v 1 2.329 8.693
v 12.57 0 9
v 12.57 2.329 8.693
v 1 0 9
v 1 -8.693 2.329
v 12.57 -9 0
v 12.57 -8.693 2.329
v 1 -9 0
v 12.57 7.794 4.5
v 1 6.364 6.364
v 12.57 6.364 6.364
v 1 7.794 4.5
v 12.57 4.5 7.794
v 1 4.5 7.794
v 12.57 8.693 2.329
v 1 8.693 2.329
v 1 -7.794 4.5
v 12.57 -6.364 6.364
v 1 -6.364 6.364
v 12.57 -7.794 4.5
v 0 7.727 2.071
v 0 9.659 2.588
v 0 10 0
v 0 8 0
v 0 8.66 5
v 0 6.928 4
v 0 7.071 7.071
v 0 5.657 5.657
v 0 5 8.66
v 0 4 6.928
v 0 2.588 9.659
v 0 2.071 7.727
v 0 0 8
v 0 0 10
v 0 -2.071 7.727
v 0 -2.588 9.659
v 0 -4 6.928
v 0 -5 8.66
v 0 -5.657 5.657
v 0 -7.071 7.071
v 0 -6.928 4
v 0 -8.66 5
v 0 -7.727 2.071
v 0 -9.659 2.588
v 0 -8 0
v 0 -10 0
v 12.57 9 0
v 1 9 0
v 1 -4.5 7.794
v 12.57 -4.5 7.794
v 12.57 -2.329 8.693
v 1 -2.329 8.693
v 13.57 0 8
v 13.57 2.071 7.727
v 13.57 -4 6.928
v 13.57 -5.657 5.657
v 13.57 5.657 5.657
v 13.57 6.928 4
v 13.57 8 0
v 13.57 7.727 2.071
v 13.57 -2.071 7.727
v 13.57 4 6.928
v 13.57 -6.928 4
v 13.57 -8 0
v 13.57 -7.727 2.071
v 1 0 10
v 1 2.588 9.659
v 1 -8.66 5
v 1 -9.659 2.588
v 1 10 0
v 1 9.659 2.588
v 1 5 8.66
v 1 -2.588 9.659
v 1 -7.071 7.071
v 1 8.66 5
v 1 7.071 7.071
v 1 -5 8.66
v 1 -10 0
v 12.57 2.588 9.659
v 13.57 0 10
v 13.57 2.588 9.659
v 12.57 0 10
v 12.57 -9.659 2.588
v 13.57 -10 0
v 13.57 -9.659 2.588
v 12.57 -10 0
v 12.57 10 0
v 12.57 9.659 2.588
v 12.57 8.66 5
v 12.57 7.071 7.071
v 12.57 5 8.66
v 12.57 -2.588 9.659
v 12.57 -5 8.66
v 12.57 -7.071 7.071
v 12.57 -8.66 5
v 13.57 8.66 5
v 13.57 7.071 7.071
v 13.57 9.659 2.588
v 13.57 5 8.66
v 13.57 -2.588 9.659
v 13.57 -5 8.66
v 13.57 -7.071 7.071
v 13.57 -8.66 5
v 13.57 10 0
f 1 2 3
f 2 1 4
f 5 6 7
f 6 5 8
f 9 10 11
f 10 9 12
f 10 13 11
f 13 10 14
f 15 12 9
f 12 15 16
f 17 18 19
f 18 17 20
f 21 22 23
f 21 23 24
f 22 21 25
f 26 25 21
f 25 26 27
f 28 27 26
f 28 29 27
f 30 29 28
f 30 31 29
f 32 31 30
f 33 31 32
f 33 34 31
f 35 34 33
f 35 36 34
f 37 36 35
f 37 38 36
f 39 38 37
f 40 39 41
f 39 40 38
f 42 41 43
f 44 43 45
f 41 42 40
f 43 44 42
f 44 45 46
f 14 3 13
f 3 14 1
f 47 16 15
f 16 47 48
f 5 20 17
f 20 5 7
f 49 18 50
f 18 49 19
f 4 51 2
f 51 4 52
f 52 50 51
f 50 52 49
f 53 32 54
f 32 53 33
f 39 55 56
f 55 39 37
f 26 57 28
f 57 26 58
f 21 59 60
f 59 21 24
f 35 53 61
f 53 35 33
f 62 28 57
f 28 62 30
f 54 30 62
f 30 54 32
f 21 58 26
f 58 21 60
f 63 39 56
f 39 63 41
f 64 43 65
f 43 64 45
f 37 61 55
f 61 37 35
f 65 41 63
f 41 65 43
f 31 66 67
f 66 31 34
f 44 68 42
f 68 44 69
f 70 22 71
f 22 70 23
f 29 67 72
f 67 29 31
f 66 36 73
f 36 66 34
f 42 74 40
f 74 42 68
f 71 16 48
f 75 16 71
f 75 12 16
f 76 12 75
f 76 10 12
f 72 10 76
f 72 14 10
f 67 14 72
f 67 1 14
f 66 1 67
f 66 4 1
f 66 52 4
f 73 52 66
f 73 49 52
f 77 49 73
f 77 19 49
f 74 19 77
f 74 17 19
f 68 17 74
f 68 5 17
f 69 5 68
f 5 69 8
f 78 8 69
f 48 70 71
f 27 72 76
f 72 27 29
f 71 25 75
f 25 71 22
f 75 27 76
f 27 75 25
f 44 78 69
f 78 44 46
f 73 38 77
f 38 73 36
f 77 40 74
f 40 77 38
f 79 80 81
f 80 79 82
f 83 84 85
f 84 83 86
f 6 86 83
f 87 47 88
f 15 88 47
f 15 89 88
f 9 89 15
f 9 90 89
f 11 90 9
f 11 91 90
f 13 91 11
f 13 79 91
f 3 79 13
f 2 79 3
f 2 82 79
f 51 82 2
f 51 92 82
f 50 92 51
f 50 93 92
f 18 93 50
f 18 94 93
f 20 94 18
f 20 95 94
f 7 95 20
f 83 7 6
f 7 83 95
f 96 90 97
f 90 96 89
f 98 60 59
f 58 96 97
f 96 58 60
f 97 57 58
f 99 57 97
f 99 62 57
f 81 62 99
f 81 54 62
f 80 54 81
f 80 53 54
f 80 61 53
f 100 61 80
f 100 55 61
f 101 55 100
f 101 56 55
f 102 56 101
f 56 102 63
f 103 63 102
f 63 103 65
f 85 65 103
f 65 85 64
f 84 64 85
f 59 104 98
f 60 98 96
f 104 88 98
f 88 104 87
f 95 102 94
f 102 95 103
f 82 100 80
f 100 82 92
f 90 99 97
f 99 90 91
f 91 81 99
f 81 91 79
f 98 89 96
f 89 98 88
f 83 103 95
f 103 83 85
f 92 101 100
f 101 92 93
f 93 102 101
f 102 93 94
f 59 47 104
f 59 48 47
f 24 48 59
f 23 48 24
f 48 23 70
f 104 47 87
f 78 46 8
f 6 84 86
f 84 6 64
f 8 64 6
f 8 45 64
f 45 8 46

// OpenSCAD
// file: ../build_environments.scad
// build_environments.scad: modules to build level sections
//

module pool(diameter=10.0, wall_height=2.0, step_width=3.0, connections=[])
{
    difference() {
        union() {
        difference() {
            cylinder(h=0.5,r1=diameter+step_width,r2=diameter+step_width,$fn=48);
            translate([0,0,-0.1])
                cylinder(h=0.7,r1=diameter,r2=diameter,$fn=48);
        }
        difference() {
            cylinder(h=wall_height,r1=diameter+step_width+1.0,r2=diameter+step_width+1.0,$fn=48);
            translate([0,0,-0.1])
                cylinder(h=wall_height+0.2,r1=diameter+step_width,r2=diameter+step_width,$fn=48);
        }
        }
    
        for (c = connections)
        {
            rotate([0,90,0]) {
                angle = atan2(c[1],c[0]);
                rotate([-angle,0,0]) {
                    cylinder(h=diameter+5.0,r1=c[2],r2=c[2],$fn=48);
                }
            }
        }
    }
}

module straight(length=10.0, width=2.0, dy1=0.0, dy2=0.0, dz=0.0)
{
    dims = [0, 0, 0, 0, 0, (dz/length)];
    matrix = [
        [ 1, dims[0], dims[1], 0 ],
        [ dims[2], 1, dims[4], 0 ],
        [ dims[5], dims[3], 1, 0 ],
        [ 0, 0, 0, 1 ]
    ];
    multmatrix(matrix)
    difference() {
        translate([dy1,0,0])
        union() {
            rotate([0,90,0]) {
                difference() {
                    cylinder(h=(length-dy1-dy2),r1=width+1.0,r2=width+1.0,$fn=24);
                    translate([0,0,-0.1])
                        cylinder(h=(length-dy1-dy2+0.2),r1=width,r2=width,$fn=24);
                }
                difference() {
                    cylinder(h=1.0,r1=width+2.0,r2=width+2.0,$fn=24);
                    translate([0,0,-0.1])
                        cylinder(h=1.2,r1=width,r2=width,$fn=24);
                }
                translate([0,0,(length-dy1-dy2)-1.0]) {
                    difference() {
                        cylinder(h=1.0,r1=width+2.0,r2=width+2.0,$fn=24);
                        translate([0,0,-0.1])
                            cylinder(h=1.2,r1=width,r2=width,$fn=24);
                    }
                }
            }
        }
        translate([0,0,-(2*width+4.0)/2])
            cube([3*length,3*length,2*width+4.0],center=true);
    }
}

module curve(p0=[0,0], center=[0,0], dir=1, angle=0.0, width=2.0)
{
    radius = sqrt((p0[0]-center[0])*(p0[0]-center[0]) + (p0[1]-center[1])*(p0[1]-center[1]));
    if (dir == 0) {
        difference() {
            rotate([0,0,-90])
            difference() {
                rotate_extrude(angle = angle, convexity = 10, $fn=32)
                    translate([radius, 0, 0])
                        circle(r = width+1.0,$fn=24);
                rotate([0,0,-1.0])
                    rotate_extrude(angle = angle+2.0, convexity = 10, $fn=32)
                        translate([radius, 0, 0])
                            circle(r = width,$fn=24);
            }
            translate([0,0,-(2*width+4.0)/2])
                cube([5*radius,5*radius,2*width+4.0],center=true);
        }
    }
    else {
        difference() {
            rotate([0,0,90])
            difference() {
                rotate_extrude(angle = -angle, convexity = 10, $fn=32)
                    translate([radius, 0, 0])
                        circle(r = width+1.0,$fn=24);
                rotate([0,0,1.0])
                    rotate_extrude(angle = -angle-2.0, convexity = 10, $fn=32)
                        translate([radius, 0, 0])
                            circle(r = width,$fn=24);
            }
            translate([0,0,-(2*width+4.0)/2])
                cube([5*radius,5*radius,2*width+4.0],center=true);
        }
    }

}

// test pool
//pool(diameter=12.0000, wall_height=3.0000, step_width=3.0000, connections=[[0.0000,-26.0000,2.0000], [23.6074,0.0000,2.0000]]);

// test straight, slope
//straight(length=26.0000, width=2.0000, dy1=11.8322, dy2=6.7082, dz=0.0000);
//straight(length=29.1549, width=12.0000, dy1=0.0000, dy2=0.0000, dz=-15.0000);

// test curve
//curve(p0=[23.6074, 0.0000], center=[23.6074, 5.0000], dir=0, angle=60.1011, width=2.0000);
//curve(p0=[33.6426, 12.4219], center=[37.9771, 9.9295], dir=1, angle=120.4627, width=2.0000);
// main file
use <../build_environments.scad>;
straight(length=13.5697, width=8.0000, dy1=0.0000, dy2=0.0000, dz=0.0000);
